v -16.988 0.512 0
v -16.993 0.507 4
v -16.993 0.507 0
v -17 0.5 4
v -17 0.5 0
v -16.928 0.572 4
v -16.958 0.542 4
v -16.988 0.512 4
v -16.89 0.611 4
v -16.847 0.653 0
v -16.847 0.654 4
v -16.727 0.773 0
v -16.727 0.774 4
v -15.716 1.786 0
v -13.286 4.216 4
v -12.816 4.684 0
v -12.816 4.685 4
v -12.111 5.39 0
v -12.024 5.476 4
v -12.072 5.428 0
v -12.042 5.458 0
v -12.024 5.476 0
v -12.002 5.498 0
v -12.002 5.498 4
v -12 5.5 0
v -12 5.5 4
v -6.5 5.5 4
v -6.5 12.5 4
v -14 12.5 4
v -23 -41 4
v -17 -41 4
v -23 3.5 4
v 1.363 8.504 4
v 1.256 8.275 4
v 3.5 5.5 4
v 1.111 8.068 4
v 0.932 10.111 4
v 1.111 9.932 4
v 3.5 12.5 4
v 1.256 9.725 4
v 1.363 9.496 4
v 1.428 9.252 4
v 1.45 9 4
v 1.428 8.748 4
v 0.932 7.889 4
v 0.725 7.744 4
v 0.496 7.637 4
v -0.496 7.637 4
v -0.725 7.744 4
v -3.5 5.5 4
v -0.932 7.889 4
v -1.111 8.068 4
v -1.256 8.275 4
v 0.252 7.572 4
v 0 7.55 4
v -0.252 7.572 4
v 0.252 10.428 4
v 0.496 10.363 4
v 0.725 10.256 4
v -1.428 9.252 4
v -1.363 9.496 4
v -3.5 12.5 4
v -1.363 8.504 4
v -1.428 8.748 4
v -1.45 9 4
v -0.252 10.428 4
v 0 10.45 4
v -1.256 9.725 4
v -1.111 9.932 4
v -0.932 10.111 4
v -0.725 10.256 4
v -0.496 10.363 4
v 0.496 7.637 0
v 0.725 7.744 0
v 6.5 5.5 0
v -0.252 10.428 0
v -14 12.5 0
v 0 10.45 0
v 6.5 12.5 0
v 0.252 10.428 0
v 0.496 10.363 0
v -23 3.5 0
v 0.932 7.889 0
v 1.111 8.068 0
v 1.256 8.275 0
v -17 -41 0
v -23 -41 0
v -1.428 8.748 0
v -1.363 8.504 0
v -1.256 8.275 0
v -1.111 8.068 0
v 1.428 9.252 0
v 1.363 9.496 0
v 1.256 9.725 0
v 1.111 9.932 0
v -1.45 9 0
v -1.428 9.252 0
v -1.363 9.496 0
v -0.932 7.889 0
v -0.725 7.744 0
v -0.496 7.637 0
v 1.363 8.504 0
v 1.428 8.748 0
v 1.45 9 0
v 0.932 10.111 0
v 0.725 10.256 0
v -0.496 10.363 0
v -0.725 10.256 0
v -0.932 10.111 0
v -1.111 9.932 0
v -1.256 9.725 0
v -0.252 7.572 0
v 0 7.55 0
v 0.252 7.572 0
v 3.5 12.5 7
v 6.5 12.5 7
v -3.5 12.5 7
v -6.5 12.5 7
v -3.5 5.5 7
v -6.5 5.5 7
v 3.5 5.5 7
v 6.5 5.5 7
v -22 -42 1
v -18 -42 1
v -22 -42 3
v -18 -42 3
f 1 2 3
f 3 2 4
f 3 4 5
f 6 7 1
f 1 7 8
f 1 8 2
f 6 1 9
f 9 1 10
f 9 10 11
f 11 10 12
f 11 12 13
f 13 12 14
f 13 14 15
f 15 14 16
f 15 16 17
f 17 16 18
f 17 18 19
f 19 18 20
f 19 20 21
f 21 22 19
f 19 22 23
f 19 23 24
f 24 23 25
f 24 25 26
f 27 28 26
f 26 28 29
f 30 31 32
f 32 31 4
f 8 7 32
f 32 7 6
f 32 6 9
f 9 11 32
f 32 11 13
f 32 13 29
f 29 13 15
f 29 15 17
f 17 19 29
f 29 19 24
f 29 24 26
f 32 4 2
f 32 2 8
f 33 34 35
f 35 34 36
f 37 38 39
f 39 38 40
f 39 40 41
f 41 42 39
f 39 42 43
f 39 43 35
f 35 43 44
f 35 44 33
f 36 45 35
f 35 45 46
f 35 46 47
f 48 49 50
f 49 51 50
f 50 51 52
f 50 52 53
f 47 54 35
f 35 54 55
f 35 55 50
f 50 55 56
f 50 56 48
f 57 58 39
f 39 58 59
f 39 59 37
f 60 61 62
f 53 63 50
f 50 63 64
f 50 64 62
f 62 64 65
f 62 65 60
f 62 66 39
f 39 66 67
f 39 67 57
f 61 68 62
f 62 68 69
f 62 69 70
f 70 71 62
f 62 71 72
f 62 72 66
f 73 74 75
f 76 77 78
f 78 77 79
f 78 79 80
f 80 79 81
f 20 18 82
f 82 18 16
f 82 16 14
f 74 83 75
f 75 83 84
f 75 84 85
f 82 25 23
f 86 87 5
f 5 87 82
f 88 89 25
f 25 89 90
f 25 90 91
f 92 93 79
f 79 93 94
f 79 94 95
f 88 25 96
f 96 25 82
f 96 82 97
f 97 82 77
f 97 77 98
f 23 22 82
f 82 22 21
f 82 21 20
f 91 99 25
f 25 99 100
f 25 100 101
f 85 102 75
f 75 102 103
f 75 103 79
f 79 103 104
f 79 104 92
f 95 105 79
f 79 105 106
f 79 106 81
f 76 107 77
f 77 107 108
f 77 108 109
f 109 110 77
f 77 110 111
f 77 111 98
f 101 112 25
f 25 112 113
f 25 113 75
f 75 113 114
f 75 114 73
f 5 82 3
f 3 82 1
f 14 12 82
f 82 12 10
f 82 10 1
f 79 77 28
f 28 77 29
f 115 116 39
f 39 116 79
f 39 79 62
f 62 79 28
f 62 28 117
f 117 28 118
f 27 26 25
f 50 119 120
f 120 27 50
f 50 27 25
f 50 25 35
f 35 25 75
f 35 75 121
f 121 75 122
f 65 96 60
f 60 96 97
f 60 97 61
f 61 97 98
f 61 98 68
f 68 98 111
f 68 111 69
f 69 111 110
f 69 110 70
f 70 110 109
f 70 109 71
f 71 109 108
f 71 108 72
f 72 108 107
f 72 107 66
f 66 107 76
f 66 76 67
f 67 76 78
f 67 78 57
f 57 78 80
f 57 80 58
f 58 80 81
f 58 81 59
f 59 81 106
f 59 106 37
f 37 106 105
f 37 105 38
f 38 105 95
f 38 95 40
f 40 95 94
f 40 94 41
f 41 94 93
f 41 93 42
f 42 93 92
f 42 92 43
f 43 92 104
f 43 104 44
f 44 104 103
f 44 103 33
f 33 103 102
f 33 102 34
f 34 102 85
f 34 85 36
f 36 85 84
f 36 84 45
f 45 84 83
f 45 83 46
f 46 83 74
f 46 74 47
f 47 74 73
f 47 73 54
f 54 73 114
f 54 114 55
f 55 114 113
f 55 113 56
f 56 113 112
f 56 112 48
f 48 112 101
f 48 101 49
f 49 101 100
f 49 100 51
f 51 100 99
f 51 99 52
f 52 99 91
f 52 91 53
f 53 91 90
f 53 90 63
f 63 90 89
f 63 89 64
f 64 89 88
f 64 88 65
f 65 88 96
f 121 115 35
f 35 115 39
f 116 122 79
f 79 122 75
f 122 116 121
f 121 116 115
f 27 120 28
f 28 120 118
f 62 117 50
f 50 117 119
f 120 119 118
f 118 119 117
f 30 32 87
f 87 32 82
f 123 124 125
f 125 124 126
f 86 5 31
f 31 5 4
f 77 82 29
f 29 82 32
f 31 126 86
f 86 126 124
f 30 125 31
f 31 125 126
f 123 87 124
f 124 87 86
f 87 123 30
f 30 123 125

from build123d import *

# Parameters (mm, degrees)
SKETCH2_W           = 18.5
SKETCH2_H           = 7
SKETCH2_R           = 1.45
BOSS_EXTRUDE2_DEPTH = 4
SKETCH4_W           = 3
SKETCH4_H           = 7
BOSS_EXTRUDE3_DEPTH = 7
SKETCH5_W           = 2
SKETCH5_H           = 7
SKETCH5_W_2         = 6
SKETCH5_H_2         = 54.5
BOSS_EXTRUDE4_DEPTH = 4
FILLET1_DEPTH       = 4
CHAMFER1_SIZE       = 9
CHAMFER6_SIZE       = 1


with BuildPart() as part:
    # Sketch2 → Boss-Extrude2 (new body)
    with BuildSketch(Plane.XY):
        with Locations((-5.75, 9)):
            Rectangle(SKETCH2_W, SKETCH2_H)
        with Locations((0, 9)):
            Circle(SKETCH2_R, mode=Mode.SUBTRACT)
    extrude(amount=BOSS_EXTRUDE2_DEPTH)

    # Sketch4 → Boss-Extrude3 (add)
    with BuildSketch(Plane.XY):
        with Locations((5, 9)):
            Rectangle(SKETCH4_W, SKETCH4_H)
        with Locations((-5, 9)):
            Rectangle(SKETCH4_W, SKETCH4_H)
    extrude(amount=BOSS_EXTRUDE3_DEPTH)

    # Sketch5 → Boss-Extrude4 (add)
    with BuildSketch(Plane.XY):
        with Locations((-16, 9)):
            Rectangle(SKETCH5_W, SKETCH5_H)
        with Locations((-20, -14.75)):
            Rectangle(SKETCH5_W_2, SKETCH5_H_2)
    extrude(amount=BOSS_EXTRUDE4_DEPTH)

    # Fillet1: read off the stored shape, not the designer's step
    # Fillet1 outline → Fillet1 (add)
    with BuildSketch(Plane.XY):
        with BuildLine():
            add(Edge.make_bspline(
                [(-12, 5.5), (-17, 5.5), (-17, 0.5)],
                knots=[0, 0, 0, 1, 1, 1], degree=2, weights=[1, 0.000353553, 1]))
            Line((-12, 5.5), (-17, 5.5))
            Line((-17, 5.5), (-17, 0.5))
        make_face()
    extrude(amount=FILLET1_DEPTH)

    # Chamfer1
    chamfer1_edges = [part.edges().sort_by_distance(p)[0] for p in [
        (-23, 12.5, 2),
    ]]
    chamfer(chamfer1_edges, length=CHAMFER1_SIZE)

    # Chamfer6
    chamfer6_edges = [part.edges().sort_by_distance(p)[0] for p in [
        (-20, -42, 4),
        (-23, -42, 2),
        (-17, -42, 2),
        (-20, -42, 0),
    ]]
    chamfer(chamfer6_edges, length=CHAMFER6_SIZE)


solid = part.part
